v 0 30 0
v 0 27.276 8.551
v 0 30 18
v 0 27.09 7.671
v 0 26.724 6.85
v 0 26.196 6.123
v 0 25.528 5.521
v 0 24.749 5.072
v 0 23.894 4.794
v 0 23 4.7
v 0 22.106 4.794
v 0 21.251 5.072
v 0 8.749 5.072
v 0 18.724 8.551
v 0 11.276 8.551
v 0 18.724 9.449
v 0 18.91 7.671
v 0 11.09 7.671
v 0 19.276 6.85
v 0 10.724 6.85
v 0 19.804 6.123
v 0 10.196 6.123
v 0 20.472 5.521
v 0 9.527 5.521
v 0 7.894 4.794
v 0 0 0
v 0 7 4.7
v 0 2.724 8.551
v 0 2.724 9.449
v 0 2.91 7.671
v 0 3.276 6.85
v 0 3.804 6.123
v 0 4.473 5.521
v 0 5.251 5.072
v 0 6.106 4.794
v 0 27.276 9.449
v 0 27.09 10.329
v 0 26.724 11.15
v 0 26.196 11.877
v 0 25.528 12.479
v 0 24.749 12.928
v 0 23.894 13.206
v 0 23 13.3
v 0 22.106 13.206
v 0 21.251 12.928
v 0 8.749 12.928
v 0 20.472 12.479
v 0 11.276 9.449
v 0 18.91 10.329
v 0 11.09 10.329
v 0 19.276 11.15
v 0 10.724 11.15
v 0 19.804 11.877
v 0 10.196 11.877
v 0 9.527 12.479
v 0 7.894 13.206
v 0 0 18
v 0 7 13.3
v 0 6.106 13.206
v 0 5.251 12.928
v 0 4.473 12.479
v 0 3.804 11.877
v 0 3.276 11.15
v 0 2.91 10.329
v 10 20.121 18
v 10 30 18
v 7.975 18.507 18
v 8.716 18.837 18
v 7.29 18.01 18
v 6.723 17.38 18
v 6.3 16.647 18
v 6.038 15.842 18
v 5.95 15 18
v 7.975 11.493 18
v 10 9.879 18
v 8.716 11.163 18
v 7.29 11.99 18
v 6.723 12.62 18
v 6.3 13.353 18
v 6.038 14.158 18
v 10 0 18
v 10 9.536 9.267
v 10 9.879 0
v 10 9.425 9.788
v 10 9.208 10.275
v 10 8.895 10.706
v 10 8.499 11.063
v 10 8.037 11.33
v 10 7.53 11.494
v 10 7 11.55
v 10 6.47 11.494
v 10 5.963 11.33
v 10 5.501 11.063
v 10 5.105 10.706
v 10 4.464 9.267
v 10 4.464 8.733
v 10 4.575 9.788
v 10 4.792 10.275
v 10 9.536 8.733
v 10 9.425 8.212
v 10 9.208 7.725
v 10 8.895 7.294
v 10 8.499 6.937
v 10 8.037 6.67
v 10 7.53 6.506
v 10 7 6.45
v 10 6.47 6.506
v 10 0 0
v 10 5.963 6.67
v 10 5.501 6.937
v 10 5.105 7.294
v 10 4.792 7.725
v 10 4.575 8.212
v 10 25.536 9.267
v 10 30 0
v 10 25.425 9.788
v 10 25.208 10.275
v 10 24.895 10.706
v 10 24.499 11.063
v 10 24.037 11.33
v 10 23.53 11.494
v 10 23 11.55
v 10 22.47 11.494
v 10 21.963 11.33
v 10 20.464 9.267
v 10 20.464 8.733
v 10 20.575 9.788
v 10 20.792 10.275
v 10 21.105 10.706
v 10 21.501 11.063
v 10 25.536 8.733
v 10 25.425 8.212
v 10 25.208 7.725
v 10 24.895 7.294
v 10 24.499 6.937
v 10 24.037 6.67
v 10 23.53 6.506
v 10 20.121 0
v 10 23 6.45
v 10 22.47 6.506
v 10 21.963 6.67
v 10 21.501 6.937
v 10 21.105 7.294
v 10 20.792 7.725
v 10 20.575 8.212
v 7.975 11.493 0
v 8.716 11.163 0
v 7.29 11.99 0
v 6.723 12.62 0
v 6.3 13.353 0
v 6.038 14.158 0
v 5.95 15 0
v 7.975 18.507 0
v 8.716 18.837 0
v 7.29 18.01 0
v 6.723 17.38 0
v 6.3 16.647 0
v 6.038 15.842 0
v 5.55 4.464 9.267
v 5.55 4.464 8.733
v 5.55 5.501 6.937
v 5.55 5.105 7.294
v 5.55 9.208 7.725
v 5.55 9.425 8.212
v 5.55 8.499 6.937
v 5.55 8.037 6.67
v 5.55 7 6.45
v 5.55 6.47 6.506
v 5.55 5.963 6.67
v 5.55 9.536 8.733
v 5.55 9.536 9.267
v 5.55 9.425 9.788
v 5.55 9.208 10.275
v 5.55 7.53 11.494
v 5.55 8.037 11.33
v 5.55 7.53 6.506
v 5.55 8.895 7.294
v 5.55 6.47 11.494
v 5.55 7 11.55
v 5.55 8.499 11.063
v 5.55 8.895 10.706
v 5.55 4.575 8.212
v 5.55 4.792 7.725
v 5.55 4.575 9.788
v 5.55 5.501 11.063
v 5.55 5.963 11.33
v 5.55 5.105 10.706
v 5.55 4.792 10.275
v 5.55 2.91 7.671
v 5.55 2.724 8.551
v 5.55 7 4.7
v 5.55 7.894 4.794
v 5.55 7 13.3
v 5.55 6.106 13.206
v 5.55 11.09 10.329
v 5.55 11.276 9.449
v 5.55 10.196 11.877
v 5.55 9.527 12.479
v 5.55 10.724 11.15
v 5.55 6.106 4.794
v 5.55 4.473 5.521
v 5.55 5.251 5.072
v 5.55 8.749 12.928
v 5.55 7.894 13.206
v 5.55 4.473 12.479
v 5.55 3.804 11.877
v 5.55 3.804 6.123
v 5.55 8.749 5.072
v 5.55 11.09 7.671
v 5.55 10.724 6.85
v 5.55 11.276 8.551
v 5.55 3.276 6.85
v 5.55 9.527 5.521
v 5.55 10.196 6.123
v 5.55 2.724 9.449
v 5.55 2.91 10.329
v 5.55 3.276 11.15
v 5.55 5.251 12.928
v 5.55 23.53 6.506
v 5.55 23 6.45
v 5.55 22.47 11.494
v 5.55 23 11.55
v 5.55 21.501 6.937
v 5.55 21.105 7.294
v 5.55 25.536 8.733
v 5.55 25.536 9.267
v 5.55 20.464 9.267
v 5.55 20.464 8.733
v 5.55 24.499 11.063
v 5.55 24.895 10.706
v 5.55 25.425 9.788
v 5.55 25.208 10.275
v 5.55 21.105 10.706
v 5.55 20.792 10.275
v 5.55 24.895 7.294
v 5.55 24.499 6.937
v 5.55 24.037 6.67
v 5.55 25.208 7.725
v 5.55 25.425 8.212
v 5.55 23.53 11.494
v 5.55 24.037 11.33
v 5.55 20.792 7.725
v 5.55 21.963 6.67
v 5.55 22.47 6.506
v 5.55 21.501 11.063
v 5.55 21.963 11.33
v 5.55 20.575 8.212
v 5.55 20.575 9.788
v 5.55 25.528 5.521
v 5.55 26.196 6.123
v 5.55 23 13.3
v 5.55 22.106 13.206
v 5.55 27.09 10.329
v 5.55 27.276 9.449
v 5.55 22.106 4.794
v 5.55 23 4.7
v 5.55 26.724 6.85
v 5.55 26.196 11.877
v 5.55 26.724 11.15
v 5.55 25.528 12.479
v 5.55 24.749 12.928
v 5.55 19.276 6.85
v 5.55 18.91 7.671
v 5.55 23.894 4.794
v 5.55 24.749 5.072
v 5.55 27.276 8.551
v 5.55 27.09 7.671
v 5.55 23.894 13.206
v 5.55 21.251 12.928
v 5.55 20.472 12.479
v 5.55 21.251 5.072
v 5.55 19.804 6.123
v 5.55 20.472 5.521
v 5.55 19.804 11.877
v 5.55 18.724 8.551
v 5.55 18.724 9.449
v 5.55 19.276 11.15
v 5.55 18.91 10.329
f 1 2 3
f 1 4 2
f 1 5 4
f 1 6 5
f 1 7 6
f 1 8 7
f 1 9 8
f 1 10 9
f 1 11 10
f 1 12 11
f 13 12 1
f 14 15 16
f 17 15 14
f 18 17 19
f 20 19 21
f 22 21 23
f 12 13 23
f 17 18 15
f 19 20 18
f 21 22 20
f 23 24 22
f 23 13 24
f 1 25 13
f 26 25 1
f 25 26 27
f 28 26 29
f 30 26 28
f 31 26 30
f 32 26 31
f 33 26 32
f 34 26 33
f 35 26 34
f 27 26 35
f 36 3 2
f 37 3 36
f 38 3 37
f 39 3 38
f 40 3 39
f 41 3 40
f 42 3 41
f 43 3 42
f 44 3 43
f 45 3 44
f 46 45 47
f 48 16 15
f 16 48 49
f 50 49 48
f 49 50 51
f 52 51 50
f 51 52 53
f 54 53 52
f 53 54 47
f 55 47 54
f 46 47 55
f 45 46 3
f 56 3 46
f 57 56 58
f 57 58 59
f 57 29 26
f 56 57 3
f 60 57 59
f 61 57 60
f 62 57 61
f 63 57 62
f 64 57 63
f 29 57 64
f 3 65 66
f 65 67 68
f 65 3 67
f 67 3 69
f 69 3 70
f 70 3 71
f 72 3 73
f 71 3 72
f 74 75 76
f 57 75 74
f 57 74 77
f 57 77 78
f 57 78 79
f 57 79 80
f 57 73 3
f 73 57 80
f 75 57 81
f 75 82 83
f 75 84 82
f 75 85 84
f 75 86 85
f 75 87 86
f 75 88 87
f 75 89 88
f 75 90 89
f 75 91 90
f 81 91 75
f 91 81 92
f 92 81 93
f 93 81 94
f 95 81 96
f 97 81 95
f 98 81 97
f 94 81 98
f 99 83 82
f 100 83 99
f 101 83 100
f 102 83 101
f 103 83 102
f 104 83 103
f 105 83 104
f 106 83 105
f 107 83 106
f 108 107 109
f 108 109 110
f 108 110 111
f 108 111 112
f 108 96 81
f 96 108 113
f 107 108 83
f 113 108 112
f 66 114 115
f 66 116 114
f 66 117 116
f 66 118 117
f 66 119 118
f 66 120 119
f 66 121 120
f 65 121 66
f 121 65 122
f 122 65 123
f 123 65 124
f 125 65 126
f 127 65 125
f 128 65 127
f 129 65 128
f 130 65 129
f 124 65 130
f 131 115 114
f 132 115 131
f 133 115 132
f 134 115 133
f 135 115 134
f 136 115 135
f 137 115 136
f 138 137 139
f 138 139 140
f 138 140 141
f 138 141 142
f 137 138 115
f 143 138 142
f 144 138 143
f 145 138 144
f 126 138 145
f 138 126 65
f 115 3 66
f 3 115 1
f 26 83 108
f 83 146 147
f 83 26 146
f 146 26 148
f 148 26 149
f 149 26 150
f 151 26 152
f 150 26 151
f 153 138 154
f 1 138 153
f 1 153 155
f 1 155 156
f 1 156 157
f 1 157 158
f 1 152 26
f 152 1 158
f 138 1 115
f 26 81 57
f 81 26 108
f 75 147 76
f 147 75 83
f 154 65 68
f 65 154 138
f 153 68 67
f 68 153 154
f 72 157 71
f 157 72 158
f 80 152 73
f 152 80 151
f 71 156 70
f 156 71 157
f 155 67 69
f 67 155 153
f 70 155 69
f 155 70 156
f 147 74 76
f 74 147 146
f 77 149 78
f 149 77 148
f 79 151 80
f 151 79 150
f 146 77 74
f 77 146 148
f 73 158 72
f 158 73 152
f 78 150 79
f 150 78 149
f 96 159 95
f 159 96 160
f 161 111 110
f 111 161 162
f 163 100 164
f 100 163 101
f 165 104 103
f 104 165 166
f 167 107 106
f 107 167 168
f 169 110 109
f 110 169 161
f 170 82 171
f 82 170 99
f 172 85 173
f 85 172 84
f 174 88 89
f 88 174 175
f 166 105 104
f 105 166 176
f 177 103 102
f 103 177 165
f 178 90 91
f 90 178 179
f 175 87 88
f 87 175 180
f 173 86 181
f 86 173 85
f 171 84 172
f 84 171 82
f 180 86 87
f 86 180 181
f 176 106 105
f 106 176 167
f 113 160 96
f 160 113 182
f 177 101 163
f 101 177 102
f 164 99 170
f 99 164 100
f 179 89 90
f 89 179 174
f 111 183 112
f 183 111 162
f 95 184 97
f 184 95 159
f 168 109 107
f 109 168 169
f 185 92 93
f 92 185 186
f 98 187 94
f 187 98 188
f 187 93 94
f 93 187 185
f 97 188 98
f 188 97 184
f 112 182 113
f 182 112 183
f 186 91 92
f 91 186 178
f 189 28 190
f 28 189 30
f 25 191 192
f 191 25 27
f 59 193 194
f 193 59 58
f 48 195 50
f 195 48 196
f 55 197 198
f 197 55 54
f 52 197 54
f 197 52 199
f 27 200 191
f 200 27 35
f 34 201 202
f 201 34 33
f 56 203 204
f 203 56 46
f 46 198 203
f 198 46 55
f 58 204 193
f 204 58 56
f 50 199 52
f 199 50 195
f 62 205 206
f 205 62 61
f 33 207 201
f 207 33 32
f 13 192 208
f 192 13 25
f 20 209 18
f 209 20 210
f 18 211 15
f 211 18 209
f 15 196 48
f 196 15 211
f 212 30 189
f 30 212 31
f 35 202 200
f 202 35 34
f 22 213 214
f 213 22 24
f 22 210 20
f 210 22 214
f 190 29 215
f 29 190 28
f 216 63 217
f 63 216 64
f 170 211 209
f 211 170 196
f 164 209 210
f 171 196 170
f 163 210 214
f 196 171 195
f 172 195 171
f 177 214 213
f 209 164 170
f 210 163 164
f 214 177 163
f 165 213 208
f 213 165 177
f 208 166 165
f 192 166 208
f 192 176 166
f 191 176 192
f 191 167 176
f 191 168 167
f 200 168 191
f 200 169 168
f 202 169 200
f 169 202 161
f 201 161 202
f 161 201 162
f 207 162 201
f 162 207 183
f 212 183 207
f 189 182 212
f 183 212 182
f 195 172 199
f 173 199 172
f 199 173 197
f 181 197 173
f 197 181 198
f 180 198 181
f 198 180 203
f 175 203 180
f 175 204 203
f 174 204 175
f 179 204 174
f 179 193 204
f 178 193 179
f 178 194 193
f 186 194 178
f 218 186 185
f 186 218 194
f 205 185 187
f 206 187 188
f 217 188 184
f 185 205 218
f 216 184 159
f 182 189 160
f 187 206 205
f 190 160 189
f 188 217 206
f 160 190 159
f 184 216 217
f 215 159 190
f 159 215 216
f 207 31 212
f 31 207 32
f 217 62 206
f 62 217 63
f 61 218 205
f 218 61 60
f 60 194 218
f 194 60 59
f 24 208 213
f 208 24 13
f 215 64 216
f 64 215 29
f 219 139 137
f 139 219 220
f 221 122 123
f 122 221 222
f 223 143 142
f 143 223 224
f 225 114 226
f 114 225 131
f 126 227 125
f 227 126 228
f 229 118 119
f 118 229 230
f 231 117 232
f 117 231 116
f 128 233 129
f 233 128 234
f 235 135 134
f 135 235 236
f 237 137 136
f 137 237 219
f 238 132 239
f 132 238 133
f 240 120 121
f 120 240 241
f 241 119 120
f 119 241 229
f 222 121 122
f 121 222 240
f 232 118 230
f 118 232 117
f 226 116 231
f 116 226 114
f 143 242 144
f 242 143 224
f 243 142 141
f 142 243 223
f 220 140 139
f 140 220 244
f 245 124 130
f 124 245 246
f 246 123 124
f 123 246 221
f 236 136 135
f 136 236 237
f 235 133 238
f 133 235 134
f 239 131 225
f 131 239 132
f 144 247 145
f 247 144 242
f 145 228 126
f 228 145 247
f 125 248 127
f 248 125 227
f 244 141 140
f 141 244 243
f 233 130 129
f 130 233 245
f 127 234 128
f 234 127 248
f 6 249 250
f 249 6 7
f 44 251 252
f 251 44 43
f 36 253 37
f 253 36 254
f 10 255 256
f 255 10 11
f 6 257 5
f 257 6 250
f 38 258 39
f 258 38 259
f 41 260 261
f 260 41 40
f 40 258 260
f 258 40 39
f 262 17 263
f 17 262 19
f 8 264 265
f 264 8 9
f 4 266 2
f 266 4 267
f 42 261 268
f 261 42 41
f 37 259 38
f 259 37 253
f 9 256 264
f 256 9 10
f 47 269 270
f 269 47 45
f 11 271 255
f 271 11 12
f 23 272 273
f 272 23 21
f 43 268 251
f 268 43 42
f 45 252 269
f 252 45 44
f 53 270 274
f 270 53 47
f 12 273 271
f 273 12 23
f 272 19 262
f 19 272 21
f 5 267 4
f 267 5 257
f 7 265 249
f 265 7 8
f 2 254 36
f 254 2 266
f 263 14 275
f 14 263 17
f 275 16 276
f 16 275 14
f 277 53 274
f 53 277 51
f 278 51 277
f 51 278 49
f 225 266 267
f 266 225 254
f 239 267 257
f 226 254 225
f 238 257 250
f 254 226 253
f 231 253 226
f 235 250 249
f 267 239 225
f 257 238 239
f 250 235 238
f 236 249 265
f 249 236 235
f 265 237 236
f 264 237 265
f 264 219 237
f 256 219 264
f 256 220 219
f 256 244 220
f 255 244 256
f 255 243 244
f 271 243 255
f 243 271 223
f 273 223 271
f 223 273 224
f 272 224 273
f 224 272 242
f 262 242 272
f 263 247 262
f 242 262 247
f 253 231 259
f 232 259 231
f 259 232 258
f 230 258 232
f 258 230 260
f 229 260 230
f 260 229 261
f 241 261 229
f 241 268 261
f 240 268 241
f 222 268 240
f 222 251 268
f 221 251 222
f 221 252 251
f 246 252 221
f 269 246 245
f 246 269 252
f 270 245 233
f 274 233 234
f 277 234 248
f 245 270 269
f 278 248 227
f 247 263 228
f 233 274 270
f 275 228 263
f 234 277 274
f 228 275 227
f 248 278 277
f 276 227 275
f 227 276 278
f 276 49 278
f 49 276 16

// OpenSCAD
// file: config.scad
/**
 * Глобальный конфигурационный файл
 */
// качество цилиндров
$fn=30;

// избегание совпадения граней
DELTA=0.1;

// толщина рамы
FRAME=18;
// main file
include <config.scad>

x=10;
y=30;
z=FRAME;

// difference between details
delta=0.05;

module frame_part03() {
difference() {
	cube([x,y,z]);
	translate([x,y/2-1.5*sqrt(2)-3,-1])rotate([0,0,45])cube([3,3,z+2]);
	translate([x,y/2-1.5*sqrt(2)+3,-1])rotate([0,0,45])cube([3,3,z+2]);
	translate([x,y/2,-1])cylinder(r=4+delta,h=z+2);
	translate([-1,y/2-8,z/2])rotate([0,90,0])cylinder(r=2.5+delta,h=x+2);
	translate([-1,7,z/2])rotate([0,90,0])cylinder(r=4.25+delta,h=6.5++delta);
	translate([-1,y/2+8,z/2])rotate([0,90,0])cylinder(r=2.5+delta,h=x+2);
	translate([-1,23,z/2])rotate([0,90,0])cylinder(r=4.25+delta,h=6.5+delta);
}
}

frame_part03();
